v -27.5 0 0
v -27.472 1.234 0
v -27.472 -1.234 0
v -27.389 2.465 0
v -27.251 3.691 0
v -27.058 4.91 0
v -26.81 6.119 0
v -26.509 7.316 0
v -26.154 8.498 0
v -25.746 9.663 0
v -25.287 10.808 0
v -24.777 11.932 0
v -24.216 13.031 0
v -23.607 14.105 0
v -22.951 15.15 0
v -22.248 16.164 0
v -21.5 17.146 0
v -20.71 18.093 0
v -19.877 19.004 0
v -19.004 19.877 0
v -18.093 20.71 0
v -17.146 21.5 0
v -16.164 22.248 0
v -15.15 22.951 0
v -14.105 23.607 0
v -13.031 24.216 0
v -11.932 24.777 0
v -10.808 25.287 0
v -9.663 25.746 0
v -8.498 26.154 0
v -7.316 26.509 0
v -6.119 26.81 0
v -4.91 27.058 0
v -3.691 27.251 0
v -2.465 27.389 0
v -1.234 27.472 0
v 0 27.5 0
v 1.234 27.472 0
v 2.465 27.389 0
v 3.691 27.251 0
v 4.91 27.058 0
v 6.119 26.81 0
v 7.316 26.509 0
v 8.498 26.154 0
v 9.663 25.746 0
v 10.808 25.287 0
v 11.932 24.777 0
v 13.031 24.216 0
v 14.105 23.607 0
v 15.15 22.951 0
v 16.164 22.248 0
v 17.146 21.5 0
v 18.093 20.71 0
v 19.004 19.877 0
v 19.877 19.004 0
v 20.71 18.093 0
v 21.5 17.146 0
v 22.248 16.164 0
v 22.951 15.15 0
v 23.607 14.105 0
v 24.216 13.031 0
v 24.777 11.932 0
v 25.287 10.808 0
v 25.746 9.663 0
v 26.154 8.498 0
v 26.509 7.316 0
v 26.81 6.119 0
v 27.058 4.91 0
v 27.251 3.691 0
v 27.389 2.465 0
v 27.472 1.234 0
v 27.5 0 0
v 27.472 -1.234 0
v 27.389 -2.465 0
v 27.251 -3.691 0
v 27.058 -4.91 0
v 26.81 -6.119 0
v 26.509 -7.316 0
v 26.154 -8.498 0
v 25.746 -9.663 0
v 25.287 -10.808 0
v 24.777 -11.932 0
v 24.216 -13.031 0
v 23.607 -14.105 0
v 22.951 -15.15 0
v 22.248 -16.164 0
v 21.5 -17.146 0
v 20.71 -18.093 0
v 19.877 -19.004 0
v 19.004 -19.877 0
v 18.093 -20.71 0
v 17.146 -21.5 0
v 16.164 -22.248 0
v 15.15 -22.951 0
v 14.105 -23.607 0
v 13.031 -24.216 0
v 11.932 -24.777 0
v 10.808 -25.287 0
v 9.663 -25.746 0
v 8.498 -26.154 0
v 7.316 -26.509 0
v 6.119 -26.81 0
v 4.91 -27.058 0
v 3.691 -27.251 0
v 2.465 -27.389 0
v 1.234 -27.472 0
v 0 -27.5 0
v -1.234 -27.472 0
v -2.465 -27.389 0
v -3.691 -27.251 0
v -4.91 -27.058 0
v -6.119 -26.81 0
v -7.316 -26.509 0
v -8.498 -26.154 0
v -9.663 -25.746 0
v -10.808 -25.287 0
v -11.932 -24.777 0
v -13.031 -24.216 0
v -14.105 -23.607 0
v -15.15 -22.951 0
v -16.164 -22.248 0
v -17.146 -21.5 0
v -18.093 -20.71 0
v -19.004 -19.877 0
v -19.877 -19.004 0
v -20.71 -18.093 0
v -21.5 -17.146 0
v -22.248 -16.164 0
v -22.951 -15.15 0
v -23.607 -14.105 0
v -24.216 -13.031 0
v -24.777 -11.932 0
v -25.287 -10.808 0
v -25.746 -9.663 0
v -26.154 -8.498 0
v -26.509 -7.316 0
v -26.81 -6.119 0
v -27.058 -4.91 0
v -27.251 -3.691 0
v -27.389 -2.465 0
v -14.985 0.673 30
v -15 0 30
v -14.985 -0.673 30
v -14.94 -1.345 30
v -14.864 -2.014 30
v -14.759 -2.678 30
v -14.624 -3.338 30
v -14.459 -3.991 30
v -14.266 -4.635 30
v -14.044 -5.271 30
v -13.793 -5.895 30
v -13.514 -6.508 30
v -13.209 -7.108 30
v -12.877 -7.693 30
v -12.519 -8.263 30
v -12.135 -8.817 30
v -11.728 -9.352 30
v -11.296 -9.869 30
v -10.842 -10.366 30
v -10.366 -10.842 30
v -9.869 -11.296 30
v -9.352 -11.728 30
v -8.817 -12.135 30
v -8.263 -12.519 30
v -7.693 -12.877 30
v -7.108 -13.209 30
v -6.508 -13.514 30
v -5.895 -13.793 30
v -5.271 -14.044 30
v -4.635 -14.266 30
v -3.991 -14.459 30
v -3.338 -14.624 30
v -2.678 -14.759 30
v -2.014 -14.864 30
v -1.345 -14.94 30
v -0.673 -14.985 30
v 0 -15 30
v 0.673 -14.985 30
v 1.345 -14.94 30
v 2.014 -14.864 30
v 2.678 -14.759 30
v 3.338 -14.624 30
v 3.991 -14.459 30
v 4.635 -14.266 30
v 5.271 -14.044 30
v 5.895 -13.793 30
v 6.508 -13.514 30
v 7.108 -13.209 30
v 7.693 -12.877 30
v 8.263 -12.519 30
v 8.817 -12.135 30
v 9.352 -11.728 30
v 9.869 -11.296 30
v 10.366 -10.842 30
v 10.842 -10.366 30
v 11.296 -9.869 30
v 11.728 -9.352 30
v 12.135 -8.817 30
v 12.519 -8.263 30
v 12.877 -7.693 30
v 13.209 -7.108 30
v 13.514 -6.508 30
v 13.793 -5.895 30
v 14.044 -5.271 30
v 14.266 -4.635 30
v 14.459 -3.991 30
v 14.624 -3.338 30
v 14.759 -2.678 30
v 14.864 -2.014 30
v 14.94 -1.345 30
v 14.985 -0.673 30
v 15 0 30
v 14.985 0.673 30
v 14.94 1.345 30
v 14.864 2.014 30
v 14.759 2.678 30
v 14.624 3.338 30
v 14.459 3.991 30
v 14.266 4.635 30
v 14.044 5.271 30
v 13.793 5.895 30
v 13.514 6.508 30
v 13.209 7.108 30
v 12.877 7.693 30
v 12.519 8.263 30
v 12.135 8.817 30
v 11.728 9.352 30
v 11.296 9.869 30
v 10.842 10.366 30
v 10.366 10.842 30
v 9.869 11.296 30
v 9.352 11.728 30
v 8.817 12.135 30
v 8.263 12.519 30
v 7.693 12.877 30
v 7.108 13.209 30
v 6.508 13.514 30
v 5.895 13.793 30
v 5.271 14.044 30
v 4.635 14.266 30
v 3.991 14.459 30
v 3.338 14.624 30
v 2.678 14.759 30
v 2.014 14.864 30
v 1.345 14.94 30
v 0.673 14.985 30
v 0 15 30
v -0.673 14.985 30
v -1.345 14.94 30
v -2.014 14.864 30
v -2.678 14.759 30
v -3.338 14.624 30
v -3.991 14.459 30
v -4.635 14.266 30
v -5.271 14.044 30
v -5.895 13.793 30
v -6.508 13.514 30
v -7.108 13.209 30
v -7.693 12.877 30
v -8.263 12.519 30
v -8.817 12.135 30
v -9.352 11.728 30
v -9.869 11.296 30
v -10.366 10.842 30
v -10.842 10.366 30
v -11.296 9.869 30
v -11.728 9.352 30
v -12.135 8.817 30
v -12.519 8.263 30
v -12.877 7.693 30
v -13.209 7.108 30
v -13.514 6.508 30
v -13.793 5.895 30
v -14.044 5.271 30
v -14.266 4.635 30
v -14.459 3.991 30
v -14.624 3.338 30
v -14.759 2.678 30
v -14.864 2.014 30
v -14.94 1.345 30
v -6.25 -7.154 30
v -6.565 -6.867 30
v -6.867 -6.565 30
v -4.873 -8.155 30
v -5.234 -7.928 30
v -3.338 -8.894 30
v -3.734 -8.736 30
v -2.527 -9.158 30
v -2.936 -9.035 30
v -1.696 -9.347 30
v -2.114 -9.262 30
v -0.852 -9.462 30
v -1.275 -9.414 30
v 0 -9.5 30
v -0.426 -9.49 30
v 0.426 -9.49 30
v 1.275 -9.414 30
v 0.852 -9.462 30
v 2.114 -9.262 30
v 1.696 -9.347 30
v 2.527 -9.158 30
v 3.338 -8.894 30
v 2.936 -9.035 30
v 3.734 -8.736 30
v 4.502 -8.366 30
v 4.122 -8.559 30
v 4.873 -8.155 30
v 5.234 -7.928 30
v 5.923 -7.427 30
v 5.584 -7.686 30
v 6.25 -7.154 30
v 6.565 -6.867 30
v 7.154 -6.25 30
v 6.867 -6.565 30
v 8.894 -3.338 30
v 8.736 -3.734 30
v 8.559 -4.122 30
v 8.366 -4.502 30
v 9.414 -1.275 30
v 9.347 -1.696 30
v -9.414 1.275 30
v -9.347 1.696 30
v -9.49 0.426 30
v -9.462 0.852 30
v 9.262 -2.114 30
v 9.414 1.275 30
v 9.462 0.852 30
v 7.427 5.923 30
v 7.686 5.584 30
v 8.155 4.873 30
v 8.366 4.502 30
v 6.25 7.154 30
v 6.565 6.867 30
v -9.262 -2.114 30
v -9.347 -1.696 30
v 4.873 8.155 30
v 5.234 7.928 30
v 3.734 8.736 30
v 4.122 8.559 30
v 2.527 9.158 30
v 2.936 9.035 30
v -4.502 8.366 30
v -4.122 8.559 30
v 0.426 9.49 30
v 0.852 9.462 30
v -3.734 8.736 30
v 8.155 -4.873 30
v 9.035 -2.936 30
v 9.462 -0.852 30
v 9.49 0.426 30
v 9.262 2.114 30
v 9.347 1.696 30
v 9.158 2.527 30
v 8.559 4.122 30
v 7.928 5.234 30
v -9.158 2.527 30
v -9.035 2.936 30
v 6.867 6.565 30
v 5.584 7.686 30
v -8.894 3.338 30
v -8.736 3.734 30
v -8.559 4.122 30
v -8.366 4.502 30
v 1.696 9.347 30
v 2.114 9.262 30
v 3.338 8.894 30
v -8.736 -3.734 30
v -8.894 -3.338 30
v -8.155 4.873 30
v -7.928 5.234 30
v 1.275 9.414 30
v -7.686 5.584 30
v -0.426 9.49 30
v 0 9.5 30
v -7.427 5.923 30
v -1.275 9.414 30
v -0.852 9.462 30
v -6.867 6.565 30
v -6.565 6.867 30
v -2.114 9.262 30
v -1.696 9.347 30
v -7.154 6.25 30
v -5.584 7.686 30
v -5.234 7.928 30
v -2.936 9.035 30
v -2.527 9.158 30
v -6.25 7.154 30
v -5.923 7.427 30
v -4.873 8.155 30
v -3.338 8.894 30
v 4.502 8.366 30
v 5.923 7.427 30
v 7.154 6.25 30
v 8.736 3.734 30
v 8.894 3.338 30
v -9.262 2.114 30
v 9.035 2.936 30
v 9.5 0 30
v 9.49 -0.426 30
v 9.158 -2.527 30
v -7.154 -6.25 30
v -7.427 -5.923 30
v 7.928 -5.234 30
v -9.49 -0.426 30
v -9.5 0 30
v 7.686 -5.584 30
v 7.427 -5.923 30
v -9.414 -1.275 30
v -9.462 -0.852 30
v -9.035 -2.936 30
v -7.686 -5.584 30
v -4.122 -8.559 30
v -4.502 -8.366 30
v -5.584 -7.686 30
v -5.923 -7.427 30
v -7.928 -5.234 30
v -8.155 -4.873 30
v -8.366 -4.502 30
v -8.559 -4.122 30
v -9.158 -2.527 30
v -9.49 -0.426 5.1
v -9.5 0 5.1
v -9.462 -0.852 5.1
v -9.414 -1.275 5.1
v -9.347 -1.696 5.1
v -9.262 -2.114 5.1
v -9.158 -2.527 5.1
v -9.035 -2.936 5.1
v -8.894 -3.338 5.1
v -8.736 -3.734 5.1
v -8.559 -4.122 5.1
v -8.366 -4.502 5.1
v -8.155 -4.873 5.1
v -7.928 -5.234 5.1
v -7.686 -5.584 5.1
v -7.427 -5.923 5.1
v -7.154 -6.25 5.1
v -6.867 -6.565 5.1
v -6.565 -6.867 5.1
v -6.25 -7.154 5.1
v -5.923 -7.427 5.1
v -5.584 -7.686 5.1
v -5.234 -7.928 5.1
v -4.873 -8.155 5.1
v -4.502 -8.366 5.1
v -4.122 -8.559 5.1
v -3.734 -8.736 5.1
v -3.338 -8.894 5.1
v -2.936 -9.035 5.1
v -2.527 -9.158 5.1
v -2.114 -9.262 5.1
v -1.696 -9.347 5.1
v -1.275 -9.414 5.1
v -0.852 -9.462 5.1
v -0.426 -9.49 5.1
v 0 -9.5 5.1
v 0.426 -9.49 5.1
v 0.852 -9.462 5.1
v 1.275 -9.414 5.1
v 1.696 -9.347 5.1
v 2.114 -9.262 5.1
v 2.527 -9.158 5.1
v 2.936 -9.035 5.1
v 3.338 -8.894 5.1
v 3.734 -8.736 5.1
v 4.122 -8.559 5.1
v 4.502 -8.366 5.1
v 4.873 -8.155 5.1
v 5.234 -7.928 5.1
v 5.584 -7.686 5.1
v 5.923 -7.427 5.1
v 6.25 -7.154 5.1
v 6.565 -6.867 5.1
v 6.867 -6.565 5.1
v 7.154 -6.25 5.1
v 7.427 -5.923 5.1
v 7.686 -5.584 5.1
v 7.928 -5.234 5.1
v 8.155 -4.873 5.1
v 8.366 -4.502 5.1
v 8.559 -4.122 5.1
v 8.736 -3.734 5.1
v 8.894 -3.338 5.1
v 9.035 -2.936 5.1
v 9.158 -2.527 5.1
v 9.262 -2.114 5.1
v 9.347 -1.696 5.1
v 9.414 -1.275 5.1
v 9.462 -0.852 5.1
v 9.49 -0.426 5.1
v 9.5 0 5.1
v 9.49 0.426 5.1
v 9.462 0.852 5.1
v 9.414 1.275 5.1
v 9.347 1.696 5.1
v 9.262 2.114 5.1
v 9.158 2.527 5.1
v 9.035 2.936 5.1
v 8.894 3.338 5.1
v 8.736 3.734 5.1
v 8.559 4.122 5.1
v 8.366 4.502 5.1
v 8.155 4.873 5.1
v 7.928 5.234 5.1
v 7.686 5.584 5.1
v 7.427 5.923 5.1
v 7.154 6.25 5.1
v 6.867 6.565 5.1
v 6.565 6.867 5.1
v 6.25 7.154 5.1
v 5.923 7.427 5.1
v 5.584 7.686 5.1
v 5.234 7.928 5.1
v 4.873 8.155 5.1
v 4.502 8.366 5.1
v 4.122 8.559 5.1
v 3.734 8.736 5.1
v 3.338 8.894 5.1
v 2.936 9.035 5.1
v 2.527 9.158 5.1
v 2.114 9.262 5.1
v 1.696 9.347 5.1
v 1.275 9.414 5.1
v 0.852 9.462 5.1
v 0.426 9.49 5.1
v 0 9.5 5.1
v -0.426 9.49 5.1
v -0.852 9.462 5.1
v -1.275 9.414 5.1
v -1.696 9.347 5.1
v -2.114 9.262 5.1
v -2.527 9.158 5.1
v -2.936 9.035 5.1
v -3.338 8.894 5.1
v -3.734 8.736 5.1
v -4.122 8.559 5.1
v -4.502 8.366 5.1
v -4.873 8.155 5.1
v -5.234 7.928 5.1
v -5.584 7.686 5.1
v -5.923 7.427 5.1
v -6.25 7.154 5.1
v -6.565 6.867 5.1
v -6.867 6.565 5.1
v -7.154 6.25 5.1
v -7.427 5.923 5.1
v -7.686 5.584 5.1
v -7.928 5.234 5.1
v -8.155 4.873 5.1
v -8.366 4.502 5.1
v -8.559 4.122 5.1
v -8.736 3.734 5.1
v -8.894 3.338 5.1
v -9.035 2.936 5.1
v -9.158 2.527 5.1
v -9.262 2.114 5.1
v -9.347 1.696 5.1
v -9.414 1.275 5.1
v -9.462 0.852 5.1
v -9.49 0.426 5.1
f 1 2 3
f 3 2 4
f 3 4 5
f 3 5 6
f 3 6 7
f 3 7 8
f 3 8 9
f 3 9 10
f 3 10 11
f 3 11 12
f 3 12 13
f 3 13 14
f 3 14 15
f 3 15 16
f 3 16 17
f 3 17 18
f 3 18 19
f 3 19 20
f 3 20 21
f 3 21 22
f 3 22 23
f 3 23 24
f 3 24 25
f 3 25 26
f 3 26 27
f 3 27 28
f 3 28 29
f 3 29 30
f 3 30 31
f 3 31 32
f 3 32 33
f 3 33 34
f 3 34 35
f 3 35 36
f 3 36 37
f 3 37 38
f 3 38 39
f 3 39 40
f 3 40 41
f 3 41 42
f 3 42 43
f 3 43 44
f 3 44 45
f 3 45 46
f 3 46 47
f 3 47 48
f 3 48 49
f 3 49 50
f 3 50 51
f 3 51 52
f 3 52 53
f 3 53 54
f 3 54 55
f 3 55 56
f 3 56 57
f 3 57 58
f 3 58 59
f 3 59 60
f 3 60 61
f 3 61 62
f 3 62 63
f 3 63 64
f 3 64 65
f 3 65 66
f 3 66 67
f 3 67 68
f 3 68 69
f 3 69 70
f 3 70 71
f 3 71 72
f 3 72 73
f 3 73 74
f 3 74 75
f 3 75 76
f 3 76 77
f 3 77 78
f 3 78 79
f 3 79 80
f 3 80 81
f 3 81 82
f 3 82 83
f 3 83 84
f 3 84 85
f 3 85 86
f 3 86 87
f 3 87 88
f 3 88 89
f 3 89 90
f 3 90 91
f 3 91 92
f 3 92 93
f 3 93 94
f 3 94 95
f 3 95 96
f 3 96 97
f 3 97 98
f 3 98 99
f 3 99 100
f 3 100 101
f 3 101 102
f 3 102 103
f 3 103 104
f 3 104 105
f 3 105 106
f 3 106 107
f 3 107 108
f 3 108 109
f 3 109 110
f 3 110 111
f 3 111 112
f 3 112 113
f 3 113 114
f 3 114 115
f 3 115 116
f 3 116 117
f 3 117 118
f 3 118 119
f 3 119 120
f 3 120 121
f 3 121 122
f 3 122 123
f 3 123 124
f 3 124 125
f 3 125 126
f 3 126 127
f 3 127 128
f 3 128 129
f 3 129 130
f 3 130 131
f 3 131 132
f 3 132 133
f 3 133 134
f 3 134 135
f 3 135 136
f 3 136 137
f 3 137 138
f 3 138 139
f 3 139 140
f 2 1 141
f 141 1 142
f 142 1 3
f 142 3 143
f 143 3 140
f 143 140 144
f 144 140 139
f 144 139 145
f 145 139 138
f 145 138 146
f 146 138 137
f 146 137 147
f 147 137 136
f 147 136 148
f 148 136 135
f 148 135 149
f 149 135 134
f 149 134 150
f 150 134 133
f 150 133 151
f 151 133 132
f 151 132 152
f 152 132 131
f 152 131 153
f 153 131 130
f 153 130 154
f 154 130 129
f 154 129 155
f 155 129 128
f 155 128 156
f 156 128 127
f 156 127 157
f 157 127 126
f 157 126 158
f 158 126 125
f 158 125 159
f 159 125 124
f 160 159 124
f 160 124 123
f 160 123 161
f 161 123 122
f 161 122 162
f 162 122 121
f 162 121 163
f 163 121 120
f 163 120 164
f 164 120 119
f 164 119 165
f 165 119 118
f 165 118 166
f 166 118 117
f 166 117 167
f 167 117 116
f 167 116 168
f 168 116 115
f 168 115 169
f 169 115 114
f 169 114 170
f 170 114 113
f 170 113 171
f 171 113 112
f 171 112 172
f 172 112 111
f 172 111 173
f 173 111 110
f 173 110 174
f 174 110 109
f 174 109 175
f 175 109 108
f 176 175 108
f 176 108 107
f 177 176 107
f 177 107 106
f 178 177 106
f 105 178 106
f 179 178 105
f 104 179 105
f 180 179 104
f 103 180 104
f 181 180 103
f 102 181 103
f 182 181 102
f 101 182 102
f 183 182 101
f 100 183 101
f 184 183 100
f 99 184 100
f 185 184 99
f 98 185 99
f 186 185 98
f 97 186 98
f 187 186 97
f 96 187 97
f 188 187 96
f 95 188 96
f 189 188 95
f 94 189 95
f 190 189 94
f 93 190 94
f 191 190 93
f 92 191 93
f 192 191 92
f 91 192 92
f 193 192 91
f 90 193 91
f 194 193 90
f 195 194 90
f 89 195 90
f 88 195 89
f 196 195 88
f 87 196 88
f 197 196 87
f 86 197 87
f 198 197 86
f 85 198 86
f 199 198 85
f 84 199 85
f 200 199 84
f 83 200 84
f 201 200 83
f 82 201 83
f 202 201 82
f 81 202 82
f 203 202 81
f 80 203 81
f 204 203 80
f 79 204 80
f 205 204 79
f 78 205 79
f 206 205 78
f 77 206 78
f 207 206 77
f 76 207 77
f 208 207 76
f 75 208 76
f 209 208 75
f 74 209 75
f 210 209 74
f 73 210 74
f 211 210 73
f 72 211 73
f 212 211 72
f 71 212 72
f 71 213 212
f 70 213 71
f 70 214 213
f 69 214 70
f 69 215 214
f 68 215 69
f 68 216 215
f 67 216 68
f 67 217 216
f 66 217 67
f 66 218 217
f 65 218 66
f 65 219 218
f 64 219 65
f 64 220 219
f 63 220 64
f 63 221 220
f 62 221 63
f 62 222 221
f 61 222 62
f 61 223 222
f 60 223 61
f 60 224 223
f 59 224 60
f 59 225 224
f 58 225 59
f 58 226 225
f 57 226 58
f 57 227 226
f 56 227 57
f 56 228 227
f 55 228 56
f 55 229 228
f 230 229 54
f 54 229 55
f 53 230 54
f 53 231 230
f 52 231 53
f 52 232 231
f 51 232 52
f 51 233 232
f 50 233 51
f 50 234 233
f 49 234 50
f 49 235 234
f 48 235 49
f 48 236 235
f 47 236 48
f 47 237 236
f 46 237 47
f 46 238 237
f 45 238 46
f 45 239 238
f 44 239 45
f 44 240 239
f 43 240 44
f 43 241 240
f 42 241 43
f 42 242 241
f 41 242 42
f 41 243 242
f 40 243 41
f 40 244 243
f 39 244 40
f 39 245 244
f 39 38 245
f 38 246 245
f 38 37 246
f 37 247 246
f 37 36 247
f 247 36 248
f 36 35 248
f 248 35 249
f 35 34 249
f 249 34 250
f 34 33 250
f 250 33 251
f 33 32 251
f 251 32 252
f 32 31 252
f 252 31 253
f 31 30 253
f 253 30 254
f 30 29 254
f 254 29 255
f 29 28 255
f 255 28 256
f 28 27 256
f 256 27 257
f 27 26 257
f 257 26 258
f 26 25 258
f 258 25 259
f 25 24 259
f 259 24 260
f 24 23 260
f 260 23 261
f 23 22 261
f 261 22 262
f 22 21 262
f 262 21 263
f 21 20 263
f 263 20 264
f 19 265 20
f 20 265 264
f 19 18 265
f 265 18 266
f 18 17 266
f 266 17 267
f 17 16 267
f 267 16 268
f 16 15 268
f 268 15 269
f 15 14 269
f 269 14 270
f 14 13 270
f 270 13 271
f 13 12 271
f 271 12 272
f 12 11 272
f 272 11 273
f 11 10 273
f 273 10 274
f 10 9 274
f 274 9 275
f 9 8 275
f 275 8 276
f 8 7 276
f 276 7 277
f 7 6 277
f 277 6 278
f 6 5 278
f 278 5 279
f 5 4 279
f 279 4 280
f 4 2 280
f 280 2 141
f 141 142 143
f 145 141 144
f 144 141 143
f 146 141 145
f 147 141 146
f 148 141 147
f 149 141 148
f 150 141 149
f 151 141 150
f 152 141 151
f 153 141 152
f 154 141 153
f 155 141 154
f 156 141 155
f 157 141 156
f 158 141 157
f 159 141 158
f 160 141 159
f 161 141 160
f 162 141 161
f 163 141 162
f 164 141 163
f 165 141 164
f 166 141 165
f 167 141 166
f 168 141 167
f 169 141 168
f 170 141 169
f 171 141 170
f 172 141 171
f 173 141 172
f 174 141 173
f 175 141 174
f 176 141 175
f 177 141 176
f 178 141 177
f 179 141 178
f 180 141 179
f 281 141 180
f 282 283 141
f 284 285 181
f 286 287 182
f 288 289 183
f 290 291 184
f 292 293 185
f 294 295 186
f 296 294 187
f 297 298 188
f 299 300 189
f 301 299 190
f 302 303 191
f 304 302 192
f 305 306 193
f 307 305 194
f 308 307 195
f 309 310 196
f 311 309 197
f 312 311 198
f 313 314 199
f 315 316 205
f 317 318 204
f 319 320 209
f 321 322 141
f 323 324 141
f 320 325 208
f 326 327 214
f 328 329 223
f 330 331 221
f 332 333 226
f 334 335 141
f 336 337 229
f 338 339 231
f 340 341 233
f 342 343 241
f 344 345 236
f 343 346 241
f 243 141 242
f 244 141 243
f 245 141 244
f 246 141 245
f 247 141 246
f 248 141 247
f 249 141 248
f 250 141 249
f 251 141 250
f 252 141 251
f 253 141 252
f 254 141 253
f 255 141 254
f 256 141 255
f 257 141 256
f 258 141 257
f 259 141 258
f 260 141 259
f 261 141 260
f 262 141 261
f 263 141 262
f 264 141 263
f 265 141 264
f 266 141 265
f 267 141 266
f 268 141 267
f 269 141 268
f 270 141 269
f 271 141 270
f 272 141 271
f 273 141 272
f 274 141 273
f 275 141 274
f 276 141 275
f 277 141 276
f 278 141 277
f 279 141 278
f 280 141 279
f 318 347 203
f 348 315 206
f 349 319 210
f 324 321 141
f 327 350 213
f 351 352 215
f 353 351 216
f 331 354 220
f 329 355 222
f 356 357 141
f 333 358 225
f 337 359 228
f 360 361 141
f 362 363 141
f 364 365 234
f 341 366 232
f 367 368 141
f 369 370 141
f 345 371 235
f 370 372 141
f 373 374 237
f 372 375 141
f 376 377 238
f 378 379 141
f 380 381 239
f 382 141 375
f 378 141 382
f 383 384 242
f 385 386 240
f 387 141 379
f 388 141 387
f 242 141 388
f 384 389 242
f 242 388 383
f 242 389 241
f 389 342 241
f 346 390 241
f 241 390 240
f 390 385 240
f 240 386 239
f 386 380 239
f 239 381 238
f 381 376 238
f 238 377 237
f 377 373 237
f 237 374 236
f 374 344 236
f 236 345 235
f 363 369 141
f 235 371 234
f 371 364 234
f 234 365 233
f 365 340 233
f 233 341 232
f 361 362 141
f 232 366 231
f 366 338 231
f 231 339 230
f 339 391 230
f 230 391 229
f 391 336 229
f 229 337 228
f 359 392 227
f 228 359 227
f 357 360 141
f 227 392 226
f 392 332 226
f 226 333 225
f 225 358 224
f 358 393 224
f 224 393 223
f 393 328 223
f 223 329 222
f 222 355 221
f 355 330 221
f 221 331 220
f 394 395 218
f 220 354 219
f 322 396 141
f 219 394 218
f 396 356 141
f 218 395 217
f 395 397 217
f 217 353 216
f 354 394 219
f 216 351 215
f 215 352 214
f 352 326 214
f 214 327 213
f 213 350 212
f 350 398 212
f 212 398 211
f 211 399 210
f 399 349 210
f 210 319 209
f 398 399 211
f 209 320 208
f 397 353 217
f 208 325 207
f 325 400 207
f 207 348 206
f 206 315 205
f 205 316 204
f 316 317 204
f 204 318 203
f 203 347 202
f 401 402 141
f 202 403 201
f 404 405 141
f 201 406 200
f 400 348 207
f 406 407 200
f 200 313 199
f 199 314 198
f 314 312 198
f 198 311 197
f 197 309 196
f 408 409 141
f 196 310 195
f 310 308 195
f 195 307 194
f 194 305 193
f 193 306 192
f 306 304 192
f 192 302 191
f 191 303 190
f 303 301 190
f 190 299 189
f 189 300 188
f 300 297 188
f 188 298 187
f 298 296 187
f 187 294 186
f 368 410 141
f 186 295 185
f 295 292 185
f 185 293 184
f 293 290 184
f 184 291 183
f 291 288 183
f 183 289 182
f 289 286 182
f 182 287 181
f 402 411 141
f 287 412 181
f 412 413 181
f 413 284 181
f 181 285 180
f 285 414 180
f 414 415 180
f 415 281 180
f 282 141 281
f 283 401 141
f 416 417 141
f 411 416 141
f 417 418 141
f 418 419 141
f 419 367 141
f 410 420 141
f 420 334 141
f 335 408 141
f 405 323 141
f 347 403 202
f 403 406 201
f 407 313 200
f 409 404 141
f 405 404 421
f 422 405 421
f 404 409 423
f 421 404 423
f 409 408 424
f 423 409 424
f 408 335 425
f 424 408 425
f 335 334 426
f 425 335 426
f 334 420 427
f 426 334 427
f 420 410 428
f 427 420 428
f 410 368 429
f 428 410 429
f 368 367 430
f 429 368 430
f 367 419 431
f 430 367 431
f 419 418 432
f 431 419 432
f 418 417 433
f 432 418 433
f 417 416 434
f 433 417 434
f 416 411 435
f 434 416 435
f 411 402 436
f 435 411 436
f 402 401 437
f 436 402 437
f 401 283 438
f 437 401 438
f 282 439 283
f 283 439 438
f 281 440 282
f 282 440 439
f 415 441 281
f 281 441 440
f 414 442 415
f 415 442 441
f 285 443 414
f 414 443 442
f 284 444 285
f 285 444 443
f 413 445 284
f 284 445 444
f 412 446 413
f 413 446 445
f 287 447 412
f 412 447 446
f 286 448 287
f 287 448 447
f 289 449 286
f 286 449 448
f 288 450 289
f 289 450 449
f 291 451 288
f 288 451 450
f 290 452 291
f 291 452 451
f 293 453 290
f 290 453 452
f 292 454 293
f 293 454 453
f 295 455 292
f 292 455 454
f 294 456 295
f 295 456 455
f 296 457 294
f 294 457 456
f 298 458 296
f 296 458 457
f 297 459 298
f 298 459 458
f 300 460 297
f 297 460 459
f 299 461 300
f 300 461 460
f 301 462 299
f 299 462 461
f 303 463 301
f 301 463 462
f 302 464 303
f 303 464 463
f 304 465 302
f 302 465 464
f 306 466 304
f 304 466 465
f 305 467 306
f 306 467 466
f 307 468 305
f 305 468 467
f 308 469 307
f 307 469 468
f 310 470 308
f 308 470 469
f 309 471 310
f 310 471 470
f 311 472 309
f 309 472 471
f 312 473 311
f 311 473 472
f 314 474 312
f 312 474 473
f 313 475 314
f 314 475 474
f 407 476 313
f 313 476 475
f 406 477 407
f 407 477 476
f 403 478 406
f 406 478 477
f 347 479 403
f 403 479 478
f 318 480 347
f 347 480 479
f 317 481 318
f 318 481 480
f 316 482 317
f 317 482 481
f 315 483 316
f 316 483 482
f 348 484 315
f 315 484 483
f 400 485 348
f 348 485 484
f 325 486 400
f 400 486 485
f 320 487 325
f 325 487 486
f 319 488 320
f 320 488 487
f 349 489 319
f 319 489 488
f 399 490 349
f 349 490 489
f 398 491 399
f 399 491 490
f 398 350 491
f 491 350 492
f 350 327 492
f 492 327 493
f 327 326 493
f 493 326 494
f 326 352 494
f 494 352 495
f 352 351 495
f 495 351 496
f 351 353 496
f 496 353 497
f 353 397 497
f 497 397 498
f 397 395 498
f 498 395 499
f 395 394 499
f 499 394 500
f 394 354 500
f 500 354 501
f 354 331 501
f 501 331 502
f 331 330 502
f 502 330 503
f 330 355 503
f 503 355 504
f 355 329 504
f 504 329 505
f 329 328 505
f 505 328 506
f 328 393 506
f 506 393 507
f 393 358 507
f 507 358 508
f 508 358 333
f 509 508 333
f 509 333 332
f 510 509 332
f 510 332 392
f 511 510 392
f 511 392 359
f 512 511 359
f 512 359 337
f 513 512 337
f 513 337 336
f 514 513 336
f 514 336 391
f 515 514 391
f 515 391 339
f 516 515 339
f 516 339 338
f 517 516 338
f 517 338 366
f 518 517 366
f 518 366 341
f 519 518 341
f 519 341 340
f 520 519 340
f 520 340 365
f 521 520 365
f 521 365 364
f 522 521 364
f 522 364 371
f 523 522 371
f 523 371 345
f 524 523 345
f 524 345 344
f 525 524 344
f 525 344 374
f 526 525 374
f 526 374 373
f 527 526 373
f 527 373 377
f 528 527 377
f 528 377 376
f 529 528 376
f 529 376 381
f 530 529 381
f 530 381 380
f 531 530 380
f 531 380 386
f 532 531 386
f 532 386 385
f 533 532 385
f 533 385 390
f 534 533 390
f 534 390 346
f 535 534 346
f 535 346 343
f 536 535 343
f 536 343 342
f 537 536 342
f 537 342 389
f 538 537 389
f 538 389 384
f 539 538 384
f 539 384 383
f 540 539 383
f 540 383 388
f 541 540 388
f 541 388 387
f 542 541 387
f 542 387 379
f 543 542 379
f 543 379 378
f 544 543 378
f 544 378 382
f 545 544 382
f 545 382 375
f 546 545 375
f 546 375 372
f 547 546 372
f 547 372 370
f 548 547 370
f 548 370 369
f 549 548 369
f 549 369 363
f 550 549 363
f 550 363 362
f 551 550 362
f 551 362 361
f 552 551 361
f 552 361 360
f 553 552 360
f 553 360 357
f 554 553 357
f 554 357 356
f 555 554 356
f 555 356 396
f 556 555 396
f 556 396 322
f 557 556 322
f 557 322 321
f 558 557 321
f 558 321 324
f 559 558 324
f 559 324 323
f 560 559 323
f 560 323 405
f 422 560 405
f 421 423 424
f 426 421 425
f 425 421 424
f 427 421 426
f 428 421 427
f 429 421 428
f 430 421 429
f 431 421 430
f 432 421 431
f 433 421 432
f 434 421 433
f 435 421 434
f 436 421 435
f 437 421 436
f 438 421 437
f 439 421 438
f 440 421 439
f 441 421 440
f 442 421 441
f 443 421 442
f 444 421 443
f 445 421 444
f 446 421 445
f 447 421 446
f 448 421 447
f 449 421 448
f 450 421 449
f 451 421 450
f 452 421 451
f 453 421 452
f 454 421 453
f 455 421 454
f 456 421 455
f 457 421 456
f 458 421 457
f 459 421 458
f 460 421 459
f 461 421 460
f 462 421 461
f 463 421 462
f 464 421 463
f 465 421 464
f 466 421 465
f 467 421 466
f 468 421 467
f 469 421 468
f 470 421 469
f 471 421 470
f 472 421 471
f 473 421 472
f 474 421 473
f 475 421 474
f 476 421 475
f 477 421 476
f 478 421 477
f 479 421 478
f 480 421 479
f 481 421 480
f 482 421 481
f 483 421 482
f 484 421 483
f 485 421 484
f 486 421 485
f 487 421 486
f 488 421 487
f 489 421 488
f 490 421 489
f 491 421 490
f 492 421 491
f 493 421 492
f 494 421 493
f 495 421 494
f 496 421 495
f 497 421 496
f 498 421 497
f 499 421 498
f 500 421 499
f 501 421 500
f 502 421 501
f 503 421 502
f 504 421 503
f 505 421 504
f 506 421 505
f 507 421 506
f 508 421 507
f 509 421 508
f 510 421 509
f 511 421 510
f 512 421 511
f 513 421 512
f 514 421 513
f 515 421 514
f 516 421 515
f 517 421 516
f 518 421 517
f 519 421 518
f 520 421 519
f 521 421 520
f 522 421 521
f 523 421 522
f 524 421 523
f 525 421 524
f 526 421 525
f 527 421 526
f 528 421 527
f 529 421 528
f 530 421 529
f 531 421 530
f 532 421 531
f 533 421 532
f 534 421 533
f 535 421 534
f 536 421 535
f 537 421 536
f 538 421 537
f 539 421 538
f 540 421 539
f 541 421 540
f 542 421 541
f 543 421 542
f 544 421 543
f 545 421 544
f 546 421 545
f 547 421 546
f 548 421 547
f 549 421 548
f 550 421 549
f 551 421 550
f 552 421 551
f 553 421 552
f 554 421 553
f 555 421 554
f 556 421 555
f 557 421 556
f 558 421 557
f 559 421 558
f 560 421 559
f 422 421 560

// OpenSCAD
$fn=140;
bottom_d=55;
bottom_r=bottom_d/2;
top_d=30;
top_r=top_d/2;
hole_d=19;
hole_r=hole_d/2;
hole_h=25;
main_h=hole_h+5;
pad=0.1;

difference(){
    cylinder(h=main_h,r2=top_r,r1=bottom_r);
    translate([0,0,main_h-hole_h+pad])
    #cylinder(h=hole_h,r=hole_r);
}
